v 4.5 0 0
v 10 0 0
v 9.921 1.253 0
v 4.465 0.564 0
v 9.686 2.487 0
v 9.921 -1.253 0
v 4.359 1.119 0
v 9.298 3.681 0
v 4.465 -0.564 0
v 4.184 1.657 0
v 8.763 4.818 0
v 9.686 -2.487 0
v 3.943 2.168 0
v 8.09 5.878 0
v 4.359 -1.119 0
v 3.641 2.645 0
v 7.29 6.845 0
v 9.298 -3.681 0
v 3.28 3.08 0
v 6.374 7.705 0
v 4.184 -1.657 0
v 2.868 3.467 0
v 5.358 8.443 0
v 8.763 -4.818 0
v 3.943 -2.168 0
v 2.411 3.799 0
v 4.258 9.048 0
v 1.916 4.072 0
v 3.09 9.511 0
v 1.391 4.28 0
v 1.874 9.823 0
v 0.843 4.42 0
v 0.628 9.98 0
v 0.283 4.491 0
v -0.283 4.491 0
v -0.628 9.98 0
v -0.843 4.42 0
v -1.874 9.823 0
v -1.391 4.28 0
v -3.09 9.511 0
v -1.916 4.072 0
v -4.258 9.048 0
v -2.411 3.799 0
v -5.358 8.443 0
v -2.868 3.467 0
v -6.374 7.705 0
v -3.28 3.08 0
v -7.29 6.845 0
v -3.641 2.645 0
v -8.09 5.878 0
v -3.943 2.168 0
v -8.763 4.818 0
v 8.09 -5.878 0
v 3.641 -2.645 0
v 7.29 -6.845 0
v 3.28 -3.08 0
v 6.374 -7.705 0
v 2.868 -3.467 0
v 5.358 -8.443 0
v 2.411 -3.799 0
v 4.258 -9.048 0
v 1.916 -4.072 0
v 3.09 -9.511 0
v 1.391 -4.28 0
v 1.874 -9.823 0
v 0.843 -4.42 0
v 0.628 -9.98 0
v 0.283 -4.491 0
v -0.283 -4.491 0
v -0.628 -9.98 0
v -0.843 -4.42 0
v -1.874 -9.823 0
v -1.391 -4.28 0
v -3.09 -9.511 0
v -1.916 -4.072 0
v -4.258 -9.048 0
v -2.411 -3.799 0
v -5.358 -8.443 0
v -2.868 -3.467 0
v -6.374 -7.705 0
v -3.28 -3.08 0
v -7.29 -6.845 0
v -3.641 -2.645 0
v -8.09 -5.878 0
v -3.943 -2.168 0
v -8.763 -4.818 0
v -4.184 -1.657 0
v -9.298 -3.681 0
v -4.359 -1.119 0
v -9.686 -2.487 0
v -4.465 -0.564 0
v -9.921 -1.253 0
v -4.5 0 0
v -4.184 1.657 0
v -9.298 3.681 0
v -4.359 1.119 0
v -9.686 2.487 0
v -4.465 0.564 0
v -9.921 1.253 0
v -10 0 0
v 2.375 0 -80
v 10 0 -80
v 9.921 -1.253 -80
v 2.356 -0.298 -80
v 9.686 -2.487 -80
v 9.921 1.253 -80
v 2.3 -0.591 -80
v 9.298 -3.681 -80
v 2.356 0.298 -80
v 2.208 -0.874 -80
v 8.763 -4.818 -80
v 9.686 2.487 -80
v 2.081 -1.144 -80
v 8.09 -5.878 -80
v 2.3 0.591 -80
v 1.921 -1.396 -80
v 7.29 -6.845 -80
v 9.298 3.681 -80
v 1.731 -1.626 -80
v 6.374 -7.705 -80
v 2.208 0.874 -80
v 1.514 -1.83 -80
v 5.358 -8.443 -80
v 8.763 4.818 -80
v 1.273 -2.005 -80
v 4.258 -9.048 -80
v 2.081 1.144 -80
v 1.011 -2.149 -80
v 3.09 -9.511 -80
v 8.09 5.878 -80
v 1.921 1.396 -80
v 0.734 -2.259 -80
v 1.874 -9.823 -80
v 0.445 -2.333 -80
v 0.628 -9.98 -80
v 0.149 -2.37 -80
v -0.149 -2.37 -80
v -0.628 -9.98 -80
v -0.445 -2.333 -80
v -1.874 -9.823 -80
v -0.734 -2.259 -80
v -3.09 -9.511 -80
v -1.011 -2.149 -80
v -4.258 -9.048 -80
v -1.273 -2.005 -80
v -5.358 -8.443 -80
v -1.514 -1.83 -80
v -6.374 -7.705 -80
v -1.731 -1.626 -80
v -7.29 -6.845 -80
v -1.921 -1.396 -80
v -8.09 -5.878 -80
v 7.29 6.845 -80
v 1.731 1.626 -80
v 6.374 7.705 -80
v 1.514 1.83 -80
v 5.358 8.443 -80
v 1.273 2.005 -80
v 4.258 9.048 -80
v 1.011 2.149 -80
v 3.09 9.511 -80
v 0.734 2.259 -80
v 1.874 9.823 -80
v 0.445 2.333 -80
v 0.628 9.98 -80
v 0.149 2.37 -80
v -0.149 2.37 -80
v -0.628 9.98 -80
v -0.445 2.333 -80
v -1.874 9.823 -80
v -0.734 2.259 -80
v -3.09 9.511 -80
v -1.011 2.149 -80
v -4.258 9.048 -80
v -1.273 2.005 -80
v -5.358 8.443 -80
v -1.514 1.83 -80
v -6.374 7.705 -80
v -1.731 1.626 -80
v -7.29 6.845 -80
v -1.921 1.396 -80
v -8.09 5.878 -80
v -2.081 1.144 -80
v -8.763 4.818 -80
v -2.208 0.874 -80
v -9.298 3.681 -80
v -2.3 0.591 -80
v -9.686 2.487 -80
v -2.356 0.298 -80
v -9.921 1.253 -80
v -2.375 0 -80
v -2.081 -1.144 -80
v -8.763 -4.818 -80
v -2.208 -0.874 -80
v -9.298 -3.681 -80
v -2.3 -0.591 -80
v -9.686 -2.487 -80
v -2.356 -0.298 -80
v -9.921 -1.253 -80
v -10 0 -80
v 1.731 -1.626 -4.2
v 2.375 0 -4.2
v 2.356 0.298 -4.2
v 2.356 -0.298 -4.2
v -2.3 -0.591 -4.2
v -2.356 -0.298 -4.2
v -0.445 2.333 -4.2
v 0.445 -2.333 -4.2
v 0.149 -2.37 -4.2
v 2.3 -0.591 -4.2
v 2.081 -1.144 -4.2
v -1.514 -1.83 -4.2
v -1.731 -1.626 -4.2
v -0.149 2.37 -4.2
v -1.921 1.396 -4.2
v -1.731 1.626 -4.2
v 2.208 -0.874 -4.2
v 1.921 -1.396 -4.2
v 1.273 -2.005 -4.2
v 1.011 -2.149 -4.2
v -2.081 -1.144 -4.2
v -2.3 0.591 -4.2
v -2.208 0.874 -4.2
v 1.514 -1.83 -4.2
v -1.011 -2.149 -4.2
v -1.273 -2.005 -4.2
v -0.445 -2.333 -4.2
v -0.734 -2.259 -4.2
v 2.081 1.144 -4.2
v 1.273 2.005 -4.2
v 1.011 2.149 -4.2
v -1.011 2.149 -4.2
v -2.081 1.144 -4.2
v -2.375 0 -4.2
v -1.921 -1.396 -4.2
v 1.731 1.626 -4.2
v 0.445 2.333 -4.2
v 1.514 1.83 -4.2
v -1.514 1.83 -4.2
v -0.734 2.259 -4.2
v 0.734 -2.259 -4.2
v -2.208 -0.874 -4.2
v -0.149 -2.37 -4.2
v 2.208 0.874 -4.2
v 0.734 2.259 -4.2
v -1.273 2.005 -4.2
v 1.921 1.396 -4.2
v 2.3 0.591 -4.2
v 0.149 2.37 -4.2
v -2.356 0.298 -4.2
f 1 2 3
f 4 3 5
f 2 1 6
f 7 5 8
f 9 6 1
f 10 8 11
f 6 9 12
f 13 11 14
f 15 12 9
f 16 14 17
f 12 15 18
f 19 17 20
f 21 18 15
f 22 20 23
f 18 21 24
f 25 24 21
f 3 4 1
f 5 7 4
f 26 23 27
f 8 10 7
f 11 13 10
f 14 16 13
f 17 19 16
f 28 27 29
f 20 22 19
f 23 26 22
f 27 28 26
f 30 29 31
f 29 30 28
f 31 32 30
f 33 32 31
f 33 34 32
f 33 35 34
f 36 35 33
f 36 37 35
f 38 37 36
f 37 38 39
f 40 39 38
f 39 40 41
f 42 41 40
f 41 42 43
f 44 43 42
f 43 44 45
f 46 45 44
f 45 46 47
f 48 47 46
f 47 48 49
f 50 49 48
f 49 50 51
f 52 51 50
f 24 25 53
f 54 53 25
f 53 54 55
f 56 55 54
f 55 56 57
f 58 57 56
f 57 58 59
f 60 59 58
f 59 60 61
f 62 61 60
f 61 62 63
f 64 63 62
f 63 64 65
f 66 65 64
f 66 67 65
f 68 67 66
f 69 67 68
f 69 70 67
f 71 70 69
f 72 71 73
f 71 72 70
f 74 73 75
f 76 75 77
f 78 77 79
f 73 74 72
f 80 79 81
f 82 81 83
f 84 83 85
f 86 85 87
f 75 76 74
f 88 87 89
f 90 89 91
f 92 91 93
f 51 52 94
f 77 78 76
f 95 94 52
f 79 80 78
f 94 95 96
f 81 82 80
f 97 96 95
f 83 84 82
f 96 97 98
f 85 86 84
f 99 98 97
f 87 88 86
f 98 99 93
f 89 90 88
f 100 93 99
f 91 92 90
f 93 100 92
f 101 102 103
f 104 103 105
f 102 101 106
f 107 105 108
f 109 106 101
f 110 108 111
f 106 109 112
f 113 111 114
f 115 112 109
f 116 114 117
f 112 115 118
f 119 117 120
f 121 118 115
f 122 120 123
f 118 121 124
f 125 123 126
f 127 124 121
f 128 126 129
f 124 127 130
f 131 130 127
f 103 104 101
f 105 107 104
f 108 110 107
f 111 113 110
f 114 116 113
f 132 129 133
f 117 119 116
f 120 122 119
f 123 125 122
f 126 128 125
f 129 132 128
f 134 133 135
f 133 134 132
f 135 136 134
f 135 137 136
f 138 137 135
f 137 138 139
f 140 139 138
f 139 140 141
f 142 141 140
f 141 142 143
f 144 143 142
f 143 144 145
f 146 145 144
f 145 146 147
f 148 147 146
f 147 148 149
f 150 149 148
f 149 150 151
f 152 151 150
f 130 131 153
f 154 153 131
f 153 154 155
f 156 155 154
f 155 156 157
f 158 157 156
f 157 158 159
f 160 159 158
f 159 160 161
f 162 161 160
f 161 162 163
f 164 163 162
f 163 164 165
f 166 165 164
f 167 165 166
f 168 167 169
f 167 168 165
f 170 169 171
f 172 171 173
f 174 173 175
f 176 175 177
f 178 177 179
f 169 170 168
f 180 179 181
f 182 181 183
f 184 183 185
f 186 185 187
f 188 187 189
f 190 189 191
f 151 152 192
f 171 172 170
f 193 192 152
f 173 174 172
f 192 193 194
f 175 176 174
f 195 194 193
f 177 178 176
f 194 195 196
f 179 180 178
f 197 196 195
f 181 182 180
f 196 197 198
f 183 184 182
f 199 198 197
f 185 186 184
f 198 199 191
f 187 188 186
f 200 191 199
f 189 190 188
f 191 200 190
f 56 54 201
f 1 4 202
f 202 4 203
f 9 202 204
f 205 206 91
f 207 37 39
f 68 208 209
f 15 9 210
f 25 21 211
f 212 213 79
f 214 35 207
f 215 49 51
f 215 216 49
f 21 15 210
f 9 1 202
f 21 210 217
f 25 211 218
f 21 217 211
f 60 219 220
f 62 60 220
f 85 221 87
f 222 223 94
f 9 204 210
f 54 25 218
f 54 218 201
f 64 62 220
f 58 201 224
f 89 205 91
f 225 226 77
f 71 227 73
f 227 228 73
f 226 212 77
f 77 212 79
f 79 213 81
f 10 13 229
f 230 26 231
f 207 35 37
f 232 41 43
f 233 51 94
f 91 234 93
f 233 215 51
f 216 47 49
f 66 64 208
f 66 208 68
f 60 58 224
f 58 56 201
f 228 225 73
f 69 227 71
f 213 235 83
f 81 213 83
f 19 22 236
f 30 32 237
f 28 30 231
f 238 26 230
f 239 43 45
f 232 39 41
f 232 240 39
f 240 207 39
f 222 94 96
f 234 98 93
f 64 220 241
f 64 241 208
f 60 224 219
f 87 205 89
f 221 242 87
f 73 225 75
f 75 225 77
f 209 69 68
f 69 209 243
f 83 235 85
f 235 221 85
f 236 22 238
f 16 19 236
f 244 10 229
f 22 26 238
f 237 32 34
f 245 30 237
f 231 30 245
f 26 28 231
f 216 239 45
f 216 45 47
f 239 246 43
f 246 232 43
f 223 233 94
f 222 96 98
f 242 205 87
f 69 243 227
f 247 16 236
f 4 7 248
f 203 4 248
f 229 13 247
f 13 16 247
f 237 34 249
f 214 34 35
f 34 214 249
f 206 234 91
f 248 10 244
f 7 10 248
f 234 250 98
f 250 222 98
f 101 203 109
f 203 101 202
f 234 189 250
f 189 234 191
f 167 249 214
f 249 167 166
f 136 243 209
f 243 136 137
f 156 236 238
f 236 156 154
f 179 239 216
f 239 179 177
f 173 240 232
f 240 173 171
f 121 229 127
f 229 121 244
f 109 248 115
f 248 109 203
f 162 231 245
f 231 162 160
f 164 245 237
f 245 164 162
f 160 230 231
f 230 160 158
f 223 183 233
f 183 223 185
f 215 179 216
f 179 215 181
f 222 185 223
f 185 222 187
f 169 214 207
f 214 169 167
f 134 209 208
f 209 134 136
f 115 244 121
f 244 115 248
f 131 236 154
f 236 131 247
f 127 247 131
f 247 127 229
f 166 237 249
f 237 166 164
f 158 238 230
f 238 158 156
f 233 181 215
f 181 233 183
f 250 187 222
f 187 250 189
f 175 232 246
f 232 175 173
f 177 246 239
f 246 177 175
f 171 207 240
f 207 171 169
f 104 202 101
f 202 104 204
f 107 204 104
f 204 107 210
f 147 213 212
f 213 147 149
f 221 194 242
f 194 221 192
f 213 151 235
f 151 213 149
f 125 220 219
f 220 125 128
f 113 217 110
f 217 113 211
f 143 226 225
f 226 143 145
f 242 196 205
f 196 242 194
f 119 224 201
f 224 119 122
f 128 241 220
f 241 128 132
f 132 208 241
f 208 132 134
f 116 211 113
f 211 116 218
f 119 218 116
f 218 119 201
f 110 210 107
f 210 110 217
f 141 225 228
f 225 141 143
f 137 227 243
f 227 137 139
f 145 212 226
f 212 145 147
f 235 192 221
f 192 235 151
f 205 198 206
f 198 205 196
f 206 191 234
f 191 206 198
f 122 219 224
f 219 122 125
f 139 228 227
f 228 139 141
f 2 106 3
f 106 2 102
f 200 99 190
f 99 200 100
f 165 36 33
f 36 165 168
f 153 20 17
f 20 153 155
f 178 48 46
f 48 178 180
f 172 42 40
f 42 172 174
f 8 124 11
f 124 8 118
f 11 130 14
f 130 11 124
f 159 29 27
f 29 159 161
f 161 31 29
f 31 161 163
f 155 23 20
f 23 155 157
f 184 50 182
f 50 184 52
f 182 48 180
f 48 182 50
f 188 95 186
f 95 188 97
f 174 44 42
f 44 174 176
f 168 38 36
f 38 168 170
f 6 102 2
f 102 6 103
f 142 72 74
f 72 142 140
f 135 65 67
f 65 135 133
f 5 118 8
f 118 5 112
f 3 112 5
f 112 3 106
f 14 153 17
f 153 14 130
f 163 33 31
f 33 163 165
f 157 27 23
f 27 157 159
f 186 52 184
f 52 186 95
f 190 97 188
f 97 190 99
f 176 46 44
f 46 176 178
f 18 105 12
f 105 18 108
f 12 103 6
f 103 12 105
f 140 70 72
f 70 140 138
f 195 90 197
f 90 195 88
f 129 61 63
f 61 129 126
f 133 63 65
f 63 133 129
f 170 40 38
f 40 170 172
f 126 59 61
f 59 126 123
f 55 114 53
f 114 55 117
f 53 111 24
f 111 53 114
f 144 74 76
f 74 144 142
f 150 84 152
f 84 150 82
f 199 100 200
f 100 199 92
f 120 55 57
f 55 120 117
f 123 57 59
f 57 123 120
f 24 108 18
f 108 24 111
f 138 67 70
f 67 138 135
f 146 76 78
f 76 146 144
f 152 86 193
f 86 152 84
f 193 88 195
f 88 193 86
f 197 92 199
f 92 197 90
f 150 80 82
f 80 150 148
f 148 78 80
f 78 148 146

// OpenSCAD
$fn = 50;


difference() {
	union() {
		translate(v = [0, 0, -80.0000000000]) {
			cylinder(h = 80, r = 10.0000000000);
		}
		cylinder(h = 0, r = 19.0000000000);
	}
	union() {
		translate(v = [0, 0, 0]) {
			rotate(a = [0, 0, 0]) {
				difference() {
					union() {
						#translate(v = [0, 0, -80.0000000000]) {
							cylinder(h = 80, r = 2.2500000000);
						}
						#translate(v = [0, 0, -4.2000000000]) {
							cylinder(h = 4.2000000000, r1 = 2.3750000000, r2 = 4.5000000000);
						}
						#translate(v = [0, 0, -80.0000000000]) {
							cylinder(h = 80, r = 2.3750000000);
						}
						#translate(v = [0, 0, -80.0000000000]) {
							cylinder(h = 80, r = 2.2500000000);
						}
					}
					union();
				}
			}
		}
	}
}
